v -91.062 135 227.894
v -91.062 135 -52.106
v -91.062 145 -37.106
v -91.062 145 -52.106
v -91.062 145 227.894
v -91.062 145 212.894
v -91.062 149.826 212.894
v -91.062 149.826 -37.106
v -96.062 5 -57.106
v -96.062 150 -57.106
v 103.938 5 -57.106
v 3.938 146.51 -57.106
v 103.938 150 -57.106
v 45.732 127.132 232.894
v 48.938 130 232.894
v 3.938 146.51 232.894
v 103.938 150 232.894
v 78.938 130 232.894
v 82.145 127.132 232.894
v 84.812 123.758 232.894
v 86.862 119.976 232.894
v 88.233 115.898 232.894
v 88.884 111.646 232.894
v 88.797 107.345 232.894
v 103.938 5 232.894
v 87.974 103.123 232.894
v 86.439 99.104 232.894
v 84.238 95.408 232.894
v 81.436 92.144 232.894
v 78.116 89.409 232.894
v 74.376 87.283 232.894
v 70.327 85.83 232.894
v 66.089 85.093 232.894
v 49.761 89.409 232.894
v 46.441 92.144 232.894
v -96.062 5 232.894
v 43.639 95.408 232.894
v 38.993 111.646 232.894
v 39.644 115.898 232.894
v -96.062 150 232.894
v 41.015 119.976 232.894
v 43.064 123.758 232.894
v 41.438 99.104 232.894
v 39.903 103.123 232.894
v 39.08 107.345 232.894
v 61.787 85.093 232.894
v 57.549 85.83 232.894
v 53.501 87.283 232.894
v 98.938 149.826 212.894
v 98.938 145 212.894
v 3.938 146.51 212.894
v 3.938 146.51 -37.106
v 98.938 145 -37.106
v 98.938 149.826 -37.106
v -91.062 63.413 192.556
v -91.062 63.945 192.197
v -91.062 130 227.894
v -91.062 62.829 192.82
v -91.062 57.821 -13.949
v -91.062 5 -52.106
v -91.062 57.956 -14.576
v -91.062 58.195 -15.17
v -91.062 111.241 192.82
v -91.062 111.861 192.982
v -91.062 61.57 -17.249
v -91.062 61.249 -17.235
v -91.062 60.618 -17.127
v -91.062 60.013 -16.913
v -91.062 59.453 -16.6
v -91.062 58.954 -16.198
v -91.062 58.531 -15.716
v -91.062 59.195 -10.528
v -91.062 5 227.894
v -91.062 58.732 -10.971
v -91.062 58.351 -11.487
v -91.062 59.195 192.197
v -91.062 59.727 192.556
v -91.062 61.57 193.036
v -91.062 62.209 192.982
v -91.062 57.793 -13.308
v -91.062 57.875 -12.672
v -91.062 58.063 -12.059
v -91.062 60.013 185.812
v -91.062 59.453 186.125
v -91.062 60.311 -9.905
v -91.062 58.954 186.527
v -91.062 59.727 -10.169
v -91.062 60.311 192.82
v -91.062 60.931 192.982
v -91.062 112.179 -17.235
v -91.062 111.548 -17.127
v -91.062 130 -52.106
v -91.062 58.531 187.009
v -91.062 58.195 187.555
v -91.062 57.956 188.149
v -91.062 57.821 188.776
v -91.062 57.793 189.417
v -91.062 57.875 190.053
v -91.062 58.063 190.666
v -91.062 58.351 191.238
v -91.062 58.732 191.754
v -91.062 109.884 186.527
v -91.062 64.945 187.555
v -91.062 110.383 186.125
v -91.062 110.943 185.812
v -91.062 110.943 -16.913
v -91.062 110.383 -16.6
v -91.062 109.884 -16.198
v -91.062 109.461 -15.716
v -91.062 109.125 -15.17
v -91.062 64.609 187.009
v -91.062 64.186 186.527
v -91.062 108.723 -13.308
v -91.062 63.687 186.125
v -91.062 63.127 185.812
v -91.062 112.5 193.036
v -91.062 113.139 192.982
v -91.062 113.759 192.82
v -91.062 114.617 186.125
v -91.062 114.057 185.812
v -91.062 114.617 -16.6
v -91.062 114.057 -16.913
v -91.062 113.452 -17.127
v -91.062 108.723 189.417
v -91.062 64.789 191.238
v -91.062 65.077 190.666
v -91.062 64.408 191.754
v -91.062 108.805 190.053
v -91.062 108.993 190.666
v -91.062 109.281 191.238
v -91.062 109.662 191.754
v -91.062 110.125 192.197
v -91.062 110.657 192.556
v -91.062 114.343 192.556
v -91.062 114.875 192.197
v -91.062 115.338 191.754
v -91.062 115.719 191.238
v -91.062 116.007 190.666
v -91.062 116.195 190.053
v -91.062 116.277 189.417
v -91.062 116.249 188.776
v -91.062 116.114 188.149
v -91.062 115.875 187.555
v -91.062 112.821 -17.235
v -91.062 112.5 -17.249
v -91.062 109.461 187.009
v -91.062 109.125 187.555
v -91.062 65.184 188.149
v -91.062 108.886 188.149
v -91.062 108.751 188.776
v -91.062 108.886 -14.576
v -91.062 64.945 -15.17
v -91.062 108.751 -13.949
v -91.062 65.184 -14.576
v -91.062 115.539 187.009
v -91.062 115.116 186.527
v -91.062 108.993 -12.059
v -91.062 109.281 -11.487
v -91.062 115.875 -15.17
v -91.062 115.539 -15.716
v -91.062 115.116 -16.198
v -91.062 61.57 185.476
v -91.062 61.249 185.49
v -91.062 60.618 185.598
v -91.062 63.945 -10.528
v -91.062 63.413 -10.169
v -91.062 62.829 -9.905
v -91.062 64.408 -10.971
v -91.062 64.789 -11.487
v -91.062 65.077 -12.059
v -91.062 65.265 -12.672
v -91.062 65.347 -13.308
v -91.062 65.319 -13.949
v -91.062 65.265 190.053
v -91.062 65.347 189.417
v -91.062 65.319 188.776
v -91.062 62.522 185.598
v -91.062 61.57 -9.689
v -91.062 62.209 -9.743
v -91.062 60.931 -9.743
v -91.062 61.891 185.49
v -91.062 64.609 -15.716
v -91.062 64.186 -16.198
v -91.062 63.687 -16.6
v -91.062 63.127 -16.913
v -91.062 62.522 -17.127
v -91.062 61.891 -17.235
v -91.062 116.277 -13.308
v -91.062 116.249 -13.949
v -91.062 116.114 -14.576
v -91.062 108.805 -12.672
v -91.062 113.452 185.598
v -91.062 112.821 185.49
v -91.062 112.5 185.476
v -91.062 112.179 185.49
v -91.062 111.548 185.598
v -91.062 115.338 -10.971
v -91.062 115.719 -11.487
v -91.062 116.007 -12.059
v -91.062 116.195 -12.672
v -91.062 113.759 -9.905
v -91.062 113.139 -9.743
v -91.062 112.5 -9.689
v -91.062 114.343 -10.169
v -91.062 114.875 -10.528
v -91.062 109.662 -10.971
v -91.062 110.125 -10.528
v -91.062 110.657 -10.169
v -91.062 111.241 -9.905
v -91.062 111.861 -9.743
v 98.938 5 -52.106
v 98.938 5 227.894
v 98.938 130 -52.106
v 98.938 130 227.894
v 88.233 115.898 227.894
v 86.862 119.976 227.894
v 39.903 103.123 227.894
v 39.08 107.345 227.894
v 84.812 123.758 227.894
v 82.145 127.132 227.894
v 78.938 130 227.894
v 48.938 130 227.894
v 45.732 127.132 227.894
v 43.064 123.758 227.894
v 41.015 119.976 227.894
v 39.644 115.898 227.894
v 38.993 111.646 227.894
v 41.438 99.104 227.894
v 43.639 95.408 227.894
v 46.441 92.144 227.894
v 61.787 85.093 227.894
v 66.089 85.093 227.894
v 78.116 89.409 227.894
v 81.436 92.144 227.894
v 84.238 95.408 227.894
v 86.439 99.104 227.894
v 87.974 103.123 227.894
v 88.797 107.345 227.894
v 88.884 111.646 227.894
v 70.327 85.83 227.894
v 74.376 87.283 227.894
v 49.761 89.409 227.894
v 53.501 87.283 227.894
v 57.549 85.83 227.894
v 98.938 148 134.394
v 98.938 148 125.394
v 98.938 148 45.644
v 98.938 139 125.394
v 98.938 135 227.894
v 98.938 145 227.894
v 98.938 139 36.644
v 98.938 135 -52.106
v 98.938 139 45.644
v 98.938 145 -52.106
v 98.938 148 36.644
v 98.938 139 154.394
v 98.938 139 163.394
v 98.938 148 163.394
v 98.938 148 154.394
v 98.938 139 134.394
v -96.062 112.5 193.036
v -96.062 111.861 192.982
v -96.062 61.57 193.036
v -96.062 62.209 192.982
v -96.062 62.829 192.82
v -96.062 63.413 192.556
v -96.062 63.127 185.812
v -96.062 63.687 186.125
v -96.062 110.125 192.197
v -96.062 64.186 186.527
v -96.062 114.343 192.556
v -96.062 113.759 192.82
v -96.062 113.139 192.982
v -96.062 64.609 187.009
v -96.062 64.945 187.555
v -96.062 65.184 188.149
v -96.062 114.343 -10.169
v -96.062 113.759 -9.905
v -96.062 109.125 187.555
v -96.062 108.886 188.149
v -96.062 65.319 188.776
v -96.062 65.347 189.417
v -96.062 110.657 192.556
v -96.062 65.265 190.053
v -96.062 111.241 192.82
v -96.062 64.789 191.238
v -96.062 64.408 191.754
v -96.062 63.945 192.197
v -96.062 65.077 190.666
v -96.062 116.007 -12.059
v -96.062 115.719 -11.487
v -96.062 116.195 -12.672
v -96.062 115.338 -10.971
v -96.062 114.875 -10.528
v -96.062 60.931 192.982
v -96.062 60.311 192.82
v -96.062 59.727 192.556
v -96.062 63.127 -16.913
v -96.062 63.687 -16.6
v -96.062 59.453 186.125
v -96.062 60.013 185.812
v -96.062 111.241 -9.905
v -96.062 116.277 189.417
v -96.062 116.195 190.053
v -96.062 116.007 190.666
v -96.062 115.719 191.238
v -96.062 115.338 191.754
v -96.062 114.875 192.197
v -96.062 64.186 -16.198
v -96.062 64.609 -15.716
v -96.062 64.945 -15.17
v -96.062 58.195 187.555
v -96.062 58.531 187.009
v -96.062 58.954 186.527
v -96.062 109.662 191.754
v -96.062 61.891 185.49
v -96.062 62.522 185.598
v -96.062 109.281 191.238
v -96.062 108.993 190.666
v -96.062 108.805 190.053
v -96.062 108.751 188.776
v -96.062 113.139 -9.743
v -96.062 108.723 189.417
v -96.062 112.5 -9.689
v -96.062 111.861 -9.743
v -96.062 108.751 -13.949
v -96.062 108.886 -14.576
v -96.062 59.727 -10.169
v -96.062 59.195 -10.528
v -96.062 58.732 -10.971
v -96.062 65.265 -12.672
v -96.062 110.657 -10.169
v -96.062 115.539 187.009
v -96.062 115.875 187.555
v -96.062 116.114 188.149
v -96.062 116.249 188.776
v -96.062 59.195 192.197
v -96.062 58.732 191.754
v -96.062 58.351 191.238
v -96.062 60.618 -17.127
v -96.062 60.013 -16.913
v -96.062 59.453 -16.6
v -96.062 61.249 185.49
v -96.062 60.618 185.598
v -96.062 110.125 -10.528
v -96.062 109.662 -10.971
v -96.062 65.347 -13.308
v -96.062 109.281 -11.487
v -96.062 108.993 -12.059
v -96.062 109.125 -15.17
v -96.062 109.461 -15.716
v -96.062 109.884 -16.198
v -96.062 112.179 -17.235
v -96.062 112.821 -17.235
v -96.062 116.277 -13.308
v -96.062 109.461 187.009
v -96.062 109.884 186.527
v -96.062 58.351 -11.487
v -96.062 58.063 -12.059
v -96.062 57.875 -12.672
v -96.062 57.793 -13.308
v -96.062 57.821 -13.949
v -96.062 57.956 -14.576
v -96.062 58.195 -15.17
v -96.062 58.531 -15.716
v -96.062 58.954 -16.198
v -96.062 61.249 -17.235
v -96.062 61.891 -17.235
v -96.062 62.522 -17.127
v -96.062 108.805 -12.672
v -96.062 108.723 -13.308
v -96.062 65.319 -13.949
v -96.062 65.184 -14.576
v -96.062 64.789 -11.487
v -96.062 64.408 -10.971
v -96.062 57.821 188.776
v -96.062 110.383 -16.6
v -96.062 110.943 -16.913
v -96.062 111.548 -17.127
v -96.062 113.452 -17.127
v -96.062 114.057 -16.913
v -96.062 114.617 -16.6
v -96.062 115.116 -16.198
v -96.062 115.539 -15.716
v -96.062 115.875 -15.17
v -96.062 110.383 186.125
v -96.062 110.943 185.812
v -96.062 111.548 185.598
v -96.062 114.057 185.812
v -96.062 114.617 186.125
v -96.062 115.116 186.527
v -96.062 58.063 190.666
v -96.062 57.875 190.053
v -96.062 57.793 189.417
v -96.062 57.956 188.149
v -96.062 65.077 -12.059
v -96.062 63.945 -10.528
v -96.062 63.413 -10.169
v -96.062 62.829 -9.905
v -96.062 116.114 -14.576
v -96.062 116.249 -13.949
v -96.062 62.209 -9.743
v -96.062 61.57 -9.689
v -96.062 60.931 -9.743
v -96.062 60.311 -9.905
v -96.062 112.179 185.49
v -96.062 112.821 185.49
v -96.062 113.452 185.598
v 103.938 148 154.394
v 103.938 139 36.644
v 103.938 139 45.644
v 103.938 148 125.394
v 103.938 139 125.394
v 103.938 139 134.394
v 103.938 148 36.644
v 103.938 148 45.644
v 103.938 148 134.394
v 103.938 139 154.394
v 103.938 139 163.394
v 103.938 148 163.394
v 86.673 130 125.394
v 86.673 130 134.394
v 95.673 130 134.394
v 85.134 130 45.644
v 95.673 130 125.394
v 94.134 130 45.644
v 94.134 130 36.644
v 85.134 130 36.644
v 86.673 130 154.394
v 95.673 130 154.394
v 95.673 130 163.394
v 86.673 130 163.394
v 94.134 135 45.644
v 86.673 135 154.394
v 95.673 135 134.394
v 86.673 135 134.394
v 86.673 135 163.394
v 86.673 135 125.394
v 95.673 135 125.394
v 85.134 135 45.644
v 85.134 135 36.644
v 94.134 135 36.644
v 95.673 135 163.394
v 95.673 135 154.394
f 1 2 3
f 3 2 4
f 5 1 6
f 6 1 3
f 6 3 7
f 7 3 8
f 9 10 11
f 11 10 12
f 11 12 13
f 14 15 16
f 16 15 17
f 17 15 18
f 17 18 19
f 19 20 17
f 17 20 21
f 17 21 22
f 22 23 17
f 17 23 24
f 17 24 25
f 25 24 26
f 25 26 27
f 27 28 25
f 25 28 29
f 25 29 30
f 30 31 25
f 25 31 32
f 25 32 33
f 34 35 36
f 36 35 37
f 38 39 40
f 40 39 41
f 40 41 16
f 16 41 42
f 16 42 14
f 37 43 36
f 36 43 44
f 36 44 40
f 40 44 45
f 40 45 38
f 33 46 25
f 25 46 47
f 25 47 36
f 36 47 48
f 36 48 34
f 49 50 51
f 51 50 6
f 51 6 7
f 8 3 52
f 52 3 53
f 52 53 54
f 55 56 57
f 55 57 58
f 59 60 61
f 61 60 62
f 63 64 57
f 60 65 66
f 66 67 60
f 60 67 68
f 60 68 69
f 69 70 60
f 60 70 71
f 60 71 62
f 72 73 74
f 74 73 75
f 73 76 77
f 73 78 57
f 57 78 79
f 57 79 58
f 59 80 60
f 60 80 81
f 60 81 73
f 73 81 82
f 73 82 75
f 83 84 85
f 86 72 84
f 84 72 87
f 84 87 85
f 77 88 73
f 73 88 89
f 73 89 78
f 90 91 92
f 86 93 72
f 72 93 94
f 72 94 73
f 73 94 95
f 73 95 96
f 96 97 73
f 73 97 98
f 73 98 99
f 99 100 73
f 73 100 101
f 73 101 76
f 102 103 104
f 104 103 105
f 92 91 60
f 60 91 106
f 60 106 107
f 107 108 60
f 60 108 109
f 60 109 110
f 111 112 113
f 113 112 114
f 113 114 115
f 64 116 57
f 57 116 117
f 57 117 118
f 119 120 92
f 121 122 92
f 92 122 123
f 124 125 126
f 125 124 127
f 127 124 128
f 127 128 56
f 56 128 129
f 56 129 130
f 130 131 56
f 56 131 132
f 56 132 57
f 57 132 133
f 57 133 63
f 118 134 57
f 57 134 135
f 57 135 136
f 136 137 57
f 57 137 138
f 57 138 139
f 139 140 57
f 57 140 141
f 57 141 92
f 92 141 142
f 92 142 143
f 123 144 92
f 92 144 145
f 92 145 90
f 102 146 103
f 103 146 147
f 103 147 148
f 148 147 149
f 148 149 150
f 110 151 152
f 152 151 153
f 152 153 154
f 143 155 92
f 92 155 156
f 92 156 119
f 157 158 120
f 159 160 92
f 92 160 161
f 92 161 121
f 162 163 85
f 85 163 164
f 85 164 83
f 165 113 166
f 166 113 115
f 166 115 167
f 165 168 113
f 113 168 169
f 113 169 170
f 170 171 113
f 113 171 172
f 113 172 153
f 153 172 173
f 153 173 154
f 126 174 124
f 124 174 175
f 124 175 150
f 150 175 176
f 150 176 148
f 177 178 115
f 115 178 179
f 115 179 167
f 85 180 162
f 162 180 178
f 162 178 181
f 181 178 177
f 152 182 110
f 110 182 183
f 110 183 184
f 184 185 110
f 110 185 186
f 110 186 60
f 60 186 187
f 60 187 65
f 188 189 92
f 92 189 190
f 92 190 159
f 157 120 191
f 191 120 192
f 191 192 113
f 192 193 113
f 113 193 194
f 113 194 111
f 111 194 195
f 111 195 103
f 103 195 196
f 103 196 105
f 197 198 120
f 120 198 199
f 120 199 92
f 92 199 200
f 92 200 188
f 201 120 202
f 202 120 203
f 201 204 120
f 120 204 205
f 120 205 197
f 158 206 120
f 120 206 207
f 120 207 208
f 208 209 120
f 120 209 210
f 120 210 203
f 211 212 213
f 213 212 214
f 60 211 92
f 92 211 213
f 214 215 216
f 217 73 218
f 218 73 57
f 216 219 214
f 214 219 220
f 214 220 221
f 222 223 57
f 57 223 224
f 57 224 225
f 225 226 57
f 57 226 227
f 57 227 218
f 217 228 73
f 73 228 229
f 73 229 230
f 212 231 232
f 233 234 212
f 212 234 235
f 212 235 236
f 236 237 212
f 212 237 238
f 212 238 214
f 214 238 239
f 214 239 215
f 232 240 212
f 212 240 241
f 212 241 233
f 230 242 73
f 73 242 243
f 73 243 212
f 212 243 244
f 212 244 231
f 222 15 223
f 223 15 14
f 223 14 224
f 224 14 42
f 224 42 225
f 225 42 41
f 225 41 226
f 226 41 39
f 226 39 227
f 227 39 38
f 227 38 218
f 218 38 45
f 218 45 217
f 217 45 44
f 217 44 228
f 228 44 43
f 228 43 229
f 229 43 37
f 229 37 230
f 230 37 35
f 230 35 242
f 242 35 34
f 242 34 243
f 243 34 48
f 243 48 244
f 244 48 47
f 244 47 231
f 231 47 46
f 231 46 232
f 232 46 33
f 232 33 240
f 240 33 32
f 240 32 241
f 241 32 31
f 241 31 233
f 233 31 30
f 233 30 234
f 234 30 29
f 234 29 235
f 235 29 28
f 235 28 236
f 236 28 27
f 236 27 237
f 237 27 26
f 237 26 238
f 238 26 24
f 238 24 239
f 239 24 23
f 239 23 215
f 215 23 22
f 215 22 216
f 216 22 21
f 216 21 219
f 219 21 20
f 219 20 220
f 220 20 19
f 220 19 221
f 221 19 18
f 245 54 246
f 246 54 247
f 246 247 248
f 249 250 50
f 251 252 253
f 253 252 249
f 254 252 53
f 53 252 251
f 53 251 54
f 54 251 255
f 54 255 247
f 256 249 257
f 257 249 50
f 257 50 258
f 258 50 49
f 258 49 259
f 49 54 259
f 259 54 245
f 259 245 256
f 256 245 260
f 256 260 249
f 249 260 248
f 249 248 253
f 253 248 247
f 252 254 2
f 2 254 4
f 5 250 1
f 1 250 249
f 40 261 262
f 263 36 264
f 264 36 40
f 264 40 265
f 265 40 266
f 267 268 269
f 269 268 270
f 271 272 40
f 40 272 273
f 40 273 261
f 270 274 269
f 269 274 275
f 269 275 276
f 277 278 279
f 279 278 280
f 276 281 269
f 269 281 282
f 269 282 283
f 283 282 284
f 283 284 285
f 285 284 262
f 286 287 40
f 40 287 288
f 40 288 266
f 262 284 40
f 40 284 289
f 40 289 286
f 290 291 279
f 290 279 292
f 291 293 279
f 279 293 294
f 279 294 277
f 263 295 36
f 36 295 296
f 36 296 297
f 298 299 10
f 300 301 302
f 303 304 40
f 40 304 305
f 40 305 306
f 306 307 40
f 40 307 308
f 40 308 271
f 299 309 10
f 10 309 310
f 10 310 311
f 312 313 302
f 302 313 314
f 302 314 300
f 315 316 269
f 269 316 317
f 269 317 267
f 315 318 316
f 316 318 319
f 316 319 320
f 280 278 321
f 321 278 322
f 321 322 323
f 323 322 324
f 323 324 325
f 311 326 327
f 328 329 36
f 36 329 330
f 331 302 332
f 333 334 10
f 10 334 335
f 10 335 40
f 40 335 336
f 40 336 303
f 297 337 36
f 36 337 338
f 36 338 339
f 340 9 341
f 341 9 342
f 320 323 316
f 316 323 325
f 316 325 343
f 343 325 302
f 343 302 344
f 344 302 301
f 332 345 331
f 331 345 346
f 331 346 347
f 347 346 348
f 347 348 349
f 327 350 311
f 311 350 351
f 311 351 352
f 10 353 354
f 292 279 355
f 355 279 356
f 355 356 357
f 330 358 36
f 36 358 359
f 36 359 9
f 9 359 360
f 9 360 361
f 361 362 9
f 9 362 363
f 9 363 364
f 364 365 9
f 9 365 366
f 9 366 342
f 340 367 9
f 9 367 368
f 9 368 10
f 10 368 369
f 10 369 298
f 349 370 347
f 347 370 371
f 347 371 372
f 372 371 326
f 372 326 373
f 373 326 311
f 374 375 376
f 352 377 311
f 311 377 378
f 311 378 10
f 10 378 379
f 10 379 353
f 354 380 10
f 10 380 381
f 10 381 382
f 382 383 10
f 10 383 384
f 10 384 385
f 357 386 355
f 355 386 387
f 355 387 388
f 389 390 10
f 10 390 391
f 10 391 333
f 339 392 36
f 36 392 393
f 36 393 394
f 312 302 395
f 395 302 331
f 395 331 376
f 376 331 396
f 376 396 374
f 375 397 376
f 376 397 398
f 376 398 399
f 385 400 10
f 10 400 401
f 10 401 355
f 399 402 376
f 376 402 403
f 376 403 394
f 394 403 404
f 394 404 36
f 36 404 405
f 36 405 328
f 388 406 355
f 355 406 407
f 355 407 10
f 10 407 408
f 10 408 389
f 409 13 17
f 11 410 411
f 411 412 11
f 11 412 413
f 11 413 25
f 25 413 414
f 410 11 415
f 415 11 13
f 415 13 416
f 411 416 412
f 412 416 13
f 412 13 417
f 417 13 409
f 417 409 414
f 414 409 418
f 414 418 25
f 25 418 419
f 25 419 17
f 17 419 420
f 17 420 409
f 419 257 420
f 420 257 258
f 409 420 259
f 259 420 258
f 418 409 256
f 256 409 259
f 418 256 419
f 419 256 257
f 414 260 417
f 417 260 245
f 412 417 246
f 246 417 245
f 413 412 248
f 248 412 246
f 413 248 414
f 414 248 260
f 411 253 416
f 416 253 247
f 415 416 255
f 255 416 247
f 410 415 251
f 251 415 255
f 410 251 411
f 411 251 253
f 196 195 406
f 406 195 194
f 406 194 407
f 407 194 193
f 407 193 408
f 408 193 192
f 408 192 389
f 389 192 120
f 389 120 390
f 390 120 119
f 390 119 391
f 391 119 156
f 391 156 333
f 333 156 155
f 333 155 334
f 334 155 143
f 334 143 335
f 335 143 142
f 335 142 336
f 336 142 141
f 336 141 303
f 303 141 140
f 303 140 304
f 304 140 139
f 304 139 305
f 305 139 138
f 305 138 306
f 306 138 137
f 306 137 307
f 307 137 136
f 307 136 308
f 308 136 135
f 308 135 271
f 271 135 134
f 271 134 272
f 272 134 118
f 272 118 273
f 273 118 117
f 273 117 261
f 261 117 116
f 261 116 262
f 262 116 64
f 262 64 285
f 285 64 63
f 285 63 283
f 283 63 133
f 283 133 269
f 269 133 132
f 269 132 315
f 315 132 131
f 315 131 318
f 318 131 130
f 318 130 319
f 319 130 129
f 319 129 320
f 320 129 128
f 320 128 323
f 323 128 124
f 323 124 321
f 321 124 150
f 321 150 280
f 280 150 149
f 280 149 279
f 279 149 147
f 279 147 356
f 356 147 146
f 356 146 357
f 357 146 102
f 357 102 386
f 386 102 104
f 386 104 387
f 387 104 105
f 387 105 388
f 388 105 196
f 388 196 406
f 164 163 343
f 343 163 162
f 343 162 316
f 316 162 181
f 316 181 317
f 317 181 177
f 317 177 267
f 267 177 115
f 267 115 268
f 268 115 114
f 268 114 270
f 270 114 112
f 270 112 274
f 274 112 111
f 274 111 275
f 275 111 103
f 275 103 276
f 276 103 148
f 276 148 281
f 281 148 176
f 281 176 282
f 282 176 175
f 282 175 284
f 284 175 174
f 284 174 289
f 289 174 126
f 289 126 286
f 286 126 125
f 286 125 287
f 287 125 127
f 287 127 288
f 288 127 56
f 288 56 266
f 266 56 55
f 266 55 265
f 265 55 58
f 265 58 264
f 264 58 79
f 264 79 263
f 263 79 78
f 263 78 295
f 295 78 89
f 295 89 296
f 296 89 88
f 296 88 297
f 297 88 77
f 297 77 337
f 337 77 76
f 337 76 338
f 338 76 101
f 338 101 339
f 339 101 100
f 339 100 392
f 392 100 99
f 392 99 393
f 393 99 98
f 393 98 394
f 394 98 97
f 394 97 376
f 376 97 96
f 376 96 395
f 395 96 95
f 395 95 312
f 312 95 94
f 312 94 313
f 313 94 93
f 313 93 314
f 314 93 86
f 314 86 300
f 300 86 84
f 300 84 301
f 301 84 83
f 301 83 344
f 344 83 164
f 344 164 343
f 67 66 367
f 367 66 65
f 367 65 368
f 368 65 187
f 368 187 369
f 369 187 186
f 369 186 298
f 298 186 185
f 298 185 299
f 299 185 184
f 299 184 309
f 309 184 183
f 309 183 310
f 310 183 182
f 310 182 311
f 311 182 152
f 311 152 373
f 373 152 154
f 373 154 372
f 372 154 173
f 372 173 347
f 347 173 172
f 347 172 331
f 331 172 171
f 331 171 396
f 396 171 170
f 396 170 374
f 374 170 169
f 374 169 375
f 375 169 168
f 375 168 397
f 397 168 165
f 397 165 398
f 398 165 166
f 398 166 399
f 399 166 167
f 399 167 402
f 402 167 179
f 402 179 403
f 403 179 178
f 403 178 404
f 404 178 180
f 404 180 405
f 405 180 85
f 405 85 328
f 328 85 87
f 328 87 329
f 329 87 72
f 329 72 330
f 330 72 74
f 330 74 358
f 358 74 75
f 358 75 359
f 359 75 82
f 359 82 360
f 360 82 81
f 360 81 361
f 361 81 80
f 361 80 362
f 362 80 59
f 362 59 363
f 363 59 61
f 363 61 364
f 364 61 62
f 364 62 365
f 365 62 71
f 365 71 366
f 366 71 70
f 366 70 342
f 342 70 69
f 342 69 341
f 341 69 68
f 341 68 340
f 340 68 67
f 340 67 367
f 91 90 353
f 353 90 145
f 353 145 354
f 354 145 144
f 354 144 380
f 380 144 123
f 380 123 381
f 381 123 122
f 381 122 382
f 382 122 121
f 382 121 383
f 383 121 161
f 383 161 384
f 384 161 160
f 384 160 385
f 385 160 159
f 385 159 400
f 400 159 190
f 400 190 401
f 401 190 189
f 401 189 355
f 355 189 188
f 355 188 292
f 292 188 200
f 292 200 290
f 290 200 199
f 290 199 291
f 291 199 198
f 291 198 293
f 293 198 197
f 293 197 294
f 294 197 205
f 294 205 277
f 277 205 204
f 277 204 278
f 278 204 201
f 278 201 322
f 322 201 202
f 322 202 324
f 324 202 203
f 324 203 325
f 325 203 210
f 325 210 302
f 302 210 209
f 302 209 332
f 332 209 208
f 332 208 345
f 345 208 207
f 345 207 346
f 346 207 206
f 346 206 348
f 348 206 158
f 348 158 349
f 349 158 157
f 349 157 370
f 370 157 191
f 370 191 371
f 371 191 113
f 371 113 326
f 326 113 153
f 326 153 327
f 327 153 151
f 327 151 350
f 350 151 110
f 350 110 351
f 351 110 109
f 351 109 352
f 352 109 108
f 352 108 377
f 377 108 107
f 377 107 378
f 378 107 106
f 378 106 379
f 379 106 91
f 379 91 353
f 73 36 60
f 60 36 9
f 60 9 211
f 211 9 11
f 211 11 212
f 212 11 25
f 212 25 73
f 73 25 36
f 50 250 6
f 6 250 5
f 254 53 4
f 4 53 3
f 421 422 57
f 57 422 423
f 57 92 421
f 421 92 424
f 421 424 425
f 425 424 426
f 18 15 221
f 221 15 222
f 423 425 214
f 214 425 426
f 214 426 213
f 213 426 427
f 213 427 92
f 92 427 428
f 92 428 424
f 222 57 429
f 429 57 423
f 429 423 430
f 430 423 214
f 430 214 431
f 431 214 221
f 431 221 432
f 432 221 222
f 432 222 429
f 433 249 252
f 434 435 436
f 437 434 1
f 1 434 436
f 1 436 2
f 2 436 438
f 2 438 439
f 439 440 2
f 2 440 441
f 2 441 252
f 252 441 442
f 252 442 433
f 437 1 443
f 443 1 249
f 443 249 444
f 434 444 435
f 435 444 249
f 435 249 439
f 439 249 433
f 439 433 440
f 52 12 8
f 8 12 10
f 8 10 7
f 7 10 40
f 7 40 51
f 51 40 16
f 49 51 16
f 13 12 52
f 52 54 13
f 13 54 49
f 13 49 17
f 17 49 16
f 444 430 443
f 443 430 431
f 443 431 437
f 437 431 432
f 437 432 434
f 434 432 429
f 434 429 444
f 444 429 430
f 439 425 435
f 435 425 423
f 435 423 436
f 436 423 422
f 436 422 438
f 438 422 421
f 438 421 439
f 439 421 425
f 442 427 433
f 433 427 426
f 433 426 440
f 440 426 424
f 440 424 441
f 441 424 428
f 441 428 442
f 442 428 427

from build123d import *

# Parameters (mm, degrees)
SKETCH1_W            = 200
SKETCH1_H            = 290
BOSS_EXTRUDE2_DEPTH  = 10
BOSS_EXTRUDE4_DEPTH  = 140
SKETCH5_W            = 9
SKETCH5_H            = 9
CUT_EXTRUDE1_DEPTH   = 10
SKETCH6_R            = 3.78
CUT_EXTRUDE2_DEPTH   = 10
SKETCH7_R            = 25
CUT_EXTRUDE3_DEPTH   = 10
SKETCH8_W            = 190
SKETCH8_H            = 280
CUT_EXTRUDE4_DEPTH   = 10
SKETCH9_W            = 211.457715155
SKETCH9_H            = 301.376650104
CUT_EXTRUDE5_DEPTH   = 5
SKETCH10_W           = 200
SKETCH10_H           = 5
BOSS_EXTRUDE7_DEPTH  = 15
SKETCH12_W           = 200
SKETCH12_H           = 5
BOSS_EXTRUDE8_DEPTH  = 15
SKETCH13_W           = 290
SKETCH13_H           = 5
BOSS_EXTRUDE14_DEPTH = 190
CUT_EXTRUDE6_DEPTH   = 300
SKETCH18_W           = 9
SKETCH18_H           = 9
CUT_EXTRUDE7_DEPTH   = 10


with BuildPart() as part:
    # Sketch1 → Boss-Extrude2 (new body)
    with BuildSketch(Plane(origin=(0, 0, 0), x_dir=(1, 0, 0), z_dir=(0, 1, 0))):
        with Locations((3.938356164, -87.893835616)):
            Rectangle(SKETCH1_W, SKETCH1_H)
    extrude(amount=BOSS_EXTRUDE2_DEPTH)

    # Sketch2 → Boss-Extrude4 (add)
    with BuildSketch(Plane(origin=(0, 10, 0), x_dir=(1, 0, 0), z_dir=(0, 1, 0))):
        Polygon((-96.061643836, 57.106164384), (-96.061643836, -87.893835616), (-91.061643836, -87.893835616), (-91.061643836, 52.106164384), (3.938356164, 52.106164384), (3.938356164, 57.106164384), align=None)
        Polygon((103.938356164, 57.106164384), (3.938356164, 57.106164384), (3.938356164, 52.106164384), (98.938356164, 52.106164384), (98.938356164, -87.893835616), (103.938356164, -87.893835616), align=None)
        Polygon((3.938356164, -227.893835616), (3.938356164, -232.893835616), (103.938356164, -232.893835616), (103.938356164, -87.893835616), (98.938356164, -87.893835616), (98.938356164, -227.893835616), align=None)
        Polygon((-91.061643836, -87.893835616), (-96.061643836, -87.893835616), (-96.061643836, -232.893835616), (3.938356164, -232.893835616), (3.938356164, -227.893835616), (-91.061643836, -227.893835616), align=None)
    extrude(amount=BOSS_EXTRUDE4_DEPTH)

    # Sketch5 → Cut-Extrude1 (cut)
    with BuildSketch(Plane(origin=(103.938356164, 0, 0), x_dir=(0, 0, -1), z_dir=(1, 0, 0))):
        with Locations((-158.893835616, 143.5)):
            Rectangle(SKETCH5_W, SKETCH5_H)
        with Locations((-129.893835616, 143.5)):
            Rectangle(SKETCH5_W, SKETCH5_H)
        with Locations((-41.143835616, 143.5)):
            Rectangle(SKETCH5_W, SKETCH5_H)
    extrude(amount=-CUT_EXTRUDE1_DEPTH, mode=Mode.SUBTRACT)

    # Sketch6 → Cut-Extrude2 (cut)
    with BuildSketch(Plane.ZY.offset(96.061643836)):
        with Locations((189.256335616, 112.5)):
            Circle(SKETCH6_R)
        with Locations((-13.468664384, 112.5)):
            Circle(SKETCH6_R)
        with Locations((189.256335616, 61.57)):
            Circle(SKETCH6_R)
        with Locations((-13.468664384, 61.57)):
            Circle(SKETCH6_R)
    extrude(amount=-CUT_EXTRUDE2_DEPTH, mode=Mode.SUBTRACT)

    # Sketch7 → Cut-Extrude3 (cut)
    with BuildSketch(Plane.XY.offset(232.893835616)):
        with Locations((63.938356164, 110)):
            Circle(SKETCH7_R)
    extrude(amount=-CUT_EXTRUDE3_DEPTH, mode=Mode.SUBTRACT)

    # Sketch8 → Cut-Extrude4 (cut)
    with BuildSketch(Plane(origin=(0, 10, 0), x_dir=(1, 0, 0), z_dir=(0, 1, 0))):
        with Locations((3.938356164, -87.893835616)):
            Rectangle(SKETCH8_W, SKETCH8_H)
    extrude(amount=-CUT_EXTRUDE4_DEPTH, mode=Mode.SUBTRACT)

    # Sketch9 → Cut-Extrude5 (cut)
    with BuildSketch(Plane.XZ):
        with Locations((3.40694666, 89.005470801)):
            Rectangle(SKETCH9_W, SKETCH9_H)
    extrude(amount=-CUT_EXTRUDE5_DEPTH, mode=Mode.SUBTRACT)

    # Sketch10 → Boss-Extrude7 (add)
    with BuildSketch(Plane(origin=(0, 0, 227.893835616), x_dir=(-1, 0, 0), z_dir=(0, 0, -1))):
        with Locations((-3.938356164, 147.5)):
            Rectangle(SKETCH10_W, SKETCH10_H)
    extrude(amount=BOSS_EXTRUDE7_DEPTH)

    # Sketch12 → Boss-Extrude8 (add)
    with BuildSketch(Plane.XY.offset(-52.106164384)):
        with Locations((3.938356164, 147.5)):
            Rectangle(SKETCH12_W, SKETCH12_H)
    extrude(amount=BOSS_EXTRUDE8_DEPTH)

    # Sketch13 → Boss-Extrude14 (add)
    with BuildSketch(Plane(origin=(-91.061643836, 0, 0), x_dir=(0, 0, -1), z_dir=(1, 0, 0))):
        with Locations((-87.893835616, 132.5)):
            Rectangle(SKETCH13_W, SKETCH13_H)
    extrude(amount=BOSS_EXTRUDE14_DEPTH)

    # Sketch17 → Cut-Extrude6 (cut)
    with BuildSketch(Plane.XY.offset(232.893835616)):
        Polygon((3.938356164, 150), (-96.061643836, 150), (3.938356164, 146.51), align=None)
        Polygon((103.938356164, 150), (3.938356164, 150), (3.938356164, 146.51), align=None)
    extrude(amount=-CUT_EXTRUDE6_DEPTH, mode=Mode.SUBTRACT)

    # Sketch18 → Cut-Extrude7 (cut)
    with BuildSketch(Plane(origin=(0, 135, 0), x_dir=(1, 0, 0), z_dir=(0, 1, 0))):
        with Locations((89.633915759, -41.143835616)):
            Rectangle(SKETCH18_W, SKETCH18_H)
        with Locations((91.172972479, -129.893835616)):
            Rectangle(SKETCH18_W, SKETCH18_H)
        with Locations((91.172972479, -158.893835616)):
            Rectangle(SKETCH18_W, SKETCH18_H)
    extrude(amount=-CUT_EXTRUDE7_DEPTH, mode=Mode.SUBTRACT)


solid = part.part
